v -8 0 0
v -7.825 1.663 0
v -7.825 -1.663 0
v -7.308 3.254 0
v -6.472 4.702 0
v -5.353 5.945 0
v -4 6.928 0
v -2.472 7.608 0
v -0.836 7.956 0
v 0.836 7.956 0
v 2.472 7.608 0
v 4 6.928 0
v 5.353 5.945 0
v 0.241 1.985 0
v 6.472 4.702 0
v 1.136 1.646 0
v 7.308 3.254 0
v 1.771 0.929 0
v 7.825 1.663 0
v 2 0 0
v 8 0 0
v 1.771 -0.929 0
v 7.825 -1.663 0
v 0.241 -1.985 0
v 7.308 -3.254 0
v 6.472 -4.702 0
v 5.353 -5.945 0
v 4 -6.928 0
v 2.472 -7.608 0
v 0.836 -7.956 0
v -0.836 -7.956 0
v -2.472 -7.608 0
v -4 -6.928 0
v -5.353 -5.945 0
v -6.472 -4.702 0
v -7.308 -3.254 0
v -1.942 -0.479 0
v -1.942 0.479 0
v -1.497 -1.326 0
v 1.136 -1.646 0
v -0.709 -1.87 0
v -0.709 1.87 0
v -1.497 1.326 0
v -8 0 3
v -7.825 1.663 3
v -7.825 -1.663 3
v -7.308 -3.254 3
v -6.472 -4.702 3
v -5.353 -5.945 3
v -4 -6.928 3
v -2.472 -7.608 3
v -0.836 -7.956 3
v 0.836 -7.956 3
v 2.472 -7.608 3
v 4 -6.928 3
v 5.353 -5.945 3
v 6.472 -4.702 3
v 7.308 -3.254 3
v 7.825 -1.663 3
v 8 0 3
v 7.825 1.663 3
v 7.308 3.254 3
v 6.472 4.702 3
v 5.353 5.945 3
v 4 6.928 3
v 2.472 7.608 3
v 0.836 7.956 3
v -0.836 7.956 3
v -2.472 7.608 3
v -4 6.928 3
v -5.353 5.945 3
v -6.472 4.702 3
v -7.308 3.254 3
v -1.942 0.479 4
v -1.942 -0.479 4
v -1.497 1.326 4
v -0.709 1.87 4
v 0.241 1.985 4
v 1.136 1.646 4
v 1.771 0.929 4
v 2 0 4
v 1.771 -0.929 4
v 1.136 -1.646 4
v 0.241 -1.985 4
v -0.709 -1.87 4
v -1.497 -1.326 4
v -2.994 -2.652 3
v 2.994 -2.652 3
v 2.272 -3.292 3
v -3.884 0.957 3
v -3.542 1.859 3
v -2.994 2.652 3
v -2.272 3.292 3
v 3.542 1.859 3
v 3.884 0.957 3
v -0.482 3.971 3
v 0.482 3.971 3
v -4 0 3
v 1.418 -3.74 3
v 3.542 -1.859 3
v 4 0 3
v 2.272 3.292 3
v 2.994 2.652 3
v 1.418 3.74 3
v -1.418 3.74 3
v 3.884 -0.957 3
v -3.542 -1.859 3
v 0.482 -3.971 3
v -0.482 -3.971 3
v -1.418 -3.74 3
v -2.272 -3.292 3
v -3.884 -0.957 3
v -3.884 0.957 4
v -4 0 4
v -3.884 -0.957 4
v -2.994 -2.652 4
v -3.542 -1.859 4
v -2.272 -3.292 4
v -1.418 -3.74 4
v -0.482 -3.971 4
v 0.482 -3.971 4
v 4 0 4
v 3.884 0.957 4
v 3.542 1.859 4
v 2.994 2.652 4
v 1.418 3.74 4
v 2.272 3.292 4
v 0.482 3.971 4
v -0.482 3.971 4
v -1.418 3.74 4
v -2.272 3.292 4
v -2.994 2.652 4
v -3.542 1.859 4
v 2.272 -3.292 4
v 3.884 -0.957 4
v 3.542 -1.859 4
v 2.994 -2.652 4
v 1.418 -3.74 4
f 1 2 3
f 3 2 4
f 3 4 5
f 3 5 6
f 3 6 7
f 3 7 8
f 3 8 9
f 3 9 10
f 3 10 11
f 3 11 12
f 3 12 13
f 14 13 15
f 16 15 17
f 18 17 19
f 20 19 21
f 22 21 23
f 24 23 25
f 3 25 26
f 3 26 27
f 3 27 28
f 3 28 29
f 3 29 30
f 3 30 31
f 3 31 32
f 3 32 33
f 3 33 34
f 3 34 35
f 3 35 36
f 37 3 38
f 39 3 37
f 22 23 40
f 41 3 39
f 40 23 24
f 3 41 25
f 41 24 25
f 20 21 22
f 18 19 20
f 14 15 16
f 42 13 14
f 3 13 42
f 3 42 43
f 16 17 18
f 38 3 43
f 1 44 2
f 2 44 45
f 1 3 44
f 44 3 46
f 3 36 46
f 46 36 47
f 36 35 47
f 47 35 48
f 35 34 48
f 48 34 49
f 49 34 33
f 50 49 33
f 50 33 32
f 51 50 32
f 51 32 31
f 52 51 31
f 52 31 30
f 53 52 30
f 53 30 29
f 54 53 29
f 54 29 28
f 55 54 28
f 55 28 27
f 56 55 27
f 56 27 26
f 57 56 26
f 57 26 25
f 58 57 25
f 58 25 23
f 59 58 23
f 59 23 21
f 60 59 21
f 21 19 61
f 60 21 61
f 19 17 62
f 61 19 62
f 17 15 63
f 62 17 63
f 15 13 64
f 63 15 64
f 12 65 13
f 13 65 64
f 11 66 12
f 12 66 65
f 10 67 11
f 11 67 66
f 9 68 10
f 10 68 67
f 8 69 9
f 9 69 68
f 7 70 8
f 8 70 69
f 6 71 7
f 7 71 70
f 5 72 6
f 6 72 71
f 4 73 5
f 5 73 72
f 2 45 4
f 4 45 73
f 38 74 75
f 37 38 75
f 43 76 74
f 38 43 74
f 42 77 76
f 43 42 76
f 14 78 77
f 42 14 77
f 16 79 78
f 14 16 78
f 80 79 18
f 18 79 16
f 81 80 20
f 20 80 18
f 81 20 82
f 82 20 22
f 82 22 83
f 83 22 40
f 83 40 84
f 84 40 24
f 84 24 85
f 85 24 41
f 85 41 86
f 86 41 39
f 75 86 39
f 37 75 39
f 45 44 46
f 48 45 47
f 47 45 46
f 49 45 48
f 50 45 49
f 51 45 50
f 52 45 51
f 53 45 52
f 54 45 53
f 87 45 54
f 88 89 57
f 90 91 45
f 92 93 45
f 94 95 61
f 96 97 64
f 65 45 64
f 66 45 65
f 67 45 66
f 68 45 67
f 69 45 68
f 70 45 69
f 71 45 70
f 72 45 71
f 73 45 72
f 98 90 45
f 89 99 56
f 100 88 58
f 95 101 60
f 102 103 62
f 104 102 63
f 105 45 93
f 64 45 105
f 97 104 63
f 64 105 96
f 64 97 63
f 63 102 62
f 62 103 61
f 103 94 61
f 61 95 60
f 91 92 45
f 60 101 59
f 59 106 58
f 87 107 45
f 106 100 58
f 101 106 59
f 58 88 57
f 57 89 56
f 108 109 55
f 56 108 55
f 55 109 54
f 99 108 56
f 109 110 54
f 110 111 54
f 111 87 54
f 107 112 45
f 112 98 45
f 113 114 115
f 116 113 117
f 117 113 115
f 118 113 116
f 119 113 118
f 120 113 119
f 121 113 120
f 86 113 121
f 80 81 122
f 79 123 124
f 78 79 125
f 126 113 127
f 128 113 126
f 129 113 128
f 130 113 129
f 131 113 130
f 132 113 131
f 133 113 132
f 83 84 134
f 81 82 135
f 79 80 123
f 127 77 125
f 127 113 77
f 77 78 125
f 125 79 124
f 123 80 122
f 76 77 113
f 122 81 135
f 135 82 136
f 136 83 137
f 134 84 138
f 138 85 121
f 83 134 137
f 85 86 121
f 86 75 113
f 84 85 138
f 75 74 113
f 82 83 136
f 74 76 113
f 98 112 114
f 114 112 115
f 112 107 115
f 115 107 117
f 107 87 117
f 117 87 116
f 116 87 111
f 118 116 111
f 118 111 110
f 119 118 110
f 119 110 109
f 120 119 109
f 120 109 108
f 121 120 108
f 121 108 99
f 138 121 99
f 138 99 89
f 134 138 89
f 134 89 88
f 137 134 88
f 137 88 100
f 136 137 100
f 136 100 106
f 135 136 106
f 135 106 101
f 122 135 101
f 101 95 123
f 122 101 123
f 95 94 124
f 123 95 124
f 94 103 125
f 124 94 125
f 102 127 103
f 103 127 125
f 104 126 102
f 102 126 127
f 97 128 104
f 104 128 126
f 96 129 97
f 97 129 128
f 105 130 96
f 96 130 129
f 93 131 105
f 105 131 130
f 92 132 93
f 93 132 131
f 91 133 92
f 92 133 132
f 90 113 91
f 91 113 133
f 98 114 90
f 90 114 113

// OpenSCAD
od = 16;
id = 4;
height=4;


difference(){
	union(){
		cylinder(h=height-1,r=od/2,center=false,$fs=1);
		cylinder(h=height,r=id,center=false,$fs=1);
	}
	cylinder(h=height,r=id/2,center=false,$fs=1);
}
